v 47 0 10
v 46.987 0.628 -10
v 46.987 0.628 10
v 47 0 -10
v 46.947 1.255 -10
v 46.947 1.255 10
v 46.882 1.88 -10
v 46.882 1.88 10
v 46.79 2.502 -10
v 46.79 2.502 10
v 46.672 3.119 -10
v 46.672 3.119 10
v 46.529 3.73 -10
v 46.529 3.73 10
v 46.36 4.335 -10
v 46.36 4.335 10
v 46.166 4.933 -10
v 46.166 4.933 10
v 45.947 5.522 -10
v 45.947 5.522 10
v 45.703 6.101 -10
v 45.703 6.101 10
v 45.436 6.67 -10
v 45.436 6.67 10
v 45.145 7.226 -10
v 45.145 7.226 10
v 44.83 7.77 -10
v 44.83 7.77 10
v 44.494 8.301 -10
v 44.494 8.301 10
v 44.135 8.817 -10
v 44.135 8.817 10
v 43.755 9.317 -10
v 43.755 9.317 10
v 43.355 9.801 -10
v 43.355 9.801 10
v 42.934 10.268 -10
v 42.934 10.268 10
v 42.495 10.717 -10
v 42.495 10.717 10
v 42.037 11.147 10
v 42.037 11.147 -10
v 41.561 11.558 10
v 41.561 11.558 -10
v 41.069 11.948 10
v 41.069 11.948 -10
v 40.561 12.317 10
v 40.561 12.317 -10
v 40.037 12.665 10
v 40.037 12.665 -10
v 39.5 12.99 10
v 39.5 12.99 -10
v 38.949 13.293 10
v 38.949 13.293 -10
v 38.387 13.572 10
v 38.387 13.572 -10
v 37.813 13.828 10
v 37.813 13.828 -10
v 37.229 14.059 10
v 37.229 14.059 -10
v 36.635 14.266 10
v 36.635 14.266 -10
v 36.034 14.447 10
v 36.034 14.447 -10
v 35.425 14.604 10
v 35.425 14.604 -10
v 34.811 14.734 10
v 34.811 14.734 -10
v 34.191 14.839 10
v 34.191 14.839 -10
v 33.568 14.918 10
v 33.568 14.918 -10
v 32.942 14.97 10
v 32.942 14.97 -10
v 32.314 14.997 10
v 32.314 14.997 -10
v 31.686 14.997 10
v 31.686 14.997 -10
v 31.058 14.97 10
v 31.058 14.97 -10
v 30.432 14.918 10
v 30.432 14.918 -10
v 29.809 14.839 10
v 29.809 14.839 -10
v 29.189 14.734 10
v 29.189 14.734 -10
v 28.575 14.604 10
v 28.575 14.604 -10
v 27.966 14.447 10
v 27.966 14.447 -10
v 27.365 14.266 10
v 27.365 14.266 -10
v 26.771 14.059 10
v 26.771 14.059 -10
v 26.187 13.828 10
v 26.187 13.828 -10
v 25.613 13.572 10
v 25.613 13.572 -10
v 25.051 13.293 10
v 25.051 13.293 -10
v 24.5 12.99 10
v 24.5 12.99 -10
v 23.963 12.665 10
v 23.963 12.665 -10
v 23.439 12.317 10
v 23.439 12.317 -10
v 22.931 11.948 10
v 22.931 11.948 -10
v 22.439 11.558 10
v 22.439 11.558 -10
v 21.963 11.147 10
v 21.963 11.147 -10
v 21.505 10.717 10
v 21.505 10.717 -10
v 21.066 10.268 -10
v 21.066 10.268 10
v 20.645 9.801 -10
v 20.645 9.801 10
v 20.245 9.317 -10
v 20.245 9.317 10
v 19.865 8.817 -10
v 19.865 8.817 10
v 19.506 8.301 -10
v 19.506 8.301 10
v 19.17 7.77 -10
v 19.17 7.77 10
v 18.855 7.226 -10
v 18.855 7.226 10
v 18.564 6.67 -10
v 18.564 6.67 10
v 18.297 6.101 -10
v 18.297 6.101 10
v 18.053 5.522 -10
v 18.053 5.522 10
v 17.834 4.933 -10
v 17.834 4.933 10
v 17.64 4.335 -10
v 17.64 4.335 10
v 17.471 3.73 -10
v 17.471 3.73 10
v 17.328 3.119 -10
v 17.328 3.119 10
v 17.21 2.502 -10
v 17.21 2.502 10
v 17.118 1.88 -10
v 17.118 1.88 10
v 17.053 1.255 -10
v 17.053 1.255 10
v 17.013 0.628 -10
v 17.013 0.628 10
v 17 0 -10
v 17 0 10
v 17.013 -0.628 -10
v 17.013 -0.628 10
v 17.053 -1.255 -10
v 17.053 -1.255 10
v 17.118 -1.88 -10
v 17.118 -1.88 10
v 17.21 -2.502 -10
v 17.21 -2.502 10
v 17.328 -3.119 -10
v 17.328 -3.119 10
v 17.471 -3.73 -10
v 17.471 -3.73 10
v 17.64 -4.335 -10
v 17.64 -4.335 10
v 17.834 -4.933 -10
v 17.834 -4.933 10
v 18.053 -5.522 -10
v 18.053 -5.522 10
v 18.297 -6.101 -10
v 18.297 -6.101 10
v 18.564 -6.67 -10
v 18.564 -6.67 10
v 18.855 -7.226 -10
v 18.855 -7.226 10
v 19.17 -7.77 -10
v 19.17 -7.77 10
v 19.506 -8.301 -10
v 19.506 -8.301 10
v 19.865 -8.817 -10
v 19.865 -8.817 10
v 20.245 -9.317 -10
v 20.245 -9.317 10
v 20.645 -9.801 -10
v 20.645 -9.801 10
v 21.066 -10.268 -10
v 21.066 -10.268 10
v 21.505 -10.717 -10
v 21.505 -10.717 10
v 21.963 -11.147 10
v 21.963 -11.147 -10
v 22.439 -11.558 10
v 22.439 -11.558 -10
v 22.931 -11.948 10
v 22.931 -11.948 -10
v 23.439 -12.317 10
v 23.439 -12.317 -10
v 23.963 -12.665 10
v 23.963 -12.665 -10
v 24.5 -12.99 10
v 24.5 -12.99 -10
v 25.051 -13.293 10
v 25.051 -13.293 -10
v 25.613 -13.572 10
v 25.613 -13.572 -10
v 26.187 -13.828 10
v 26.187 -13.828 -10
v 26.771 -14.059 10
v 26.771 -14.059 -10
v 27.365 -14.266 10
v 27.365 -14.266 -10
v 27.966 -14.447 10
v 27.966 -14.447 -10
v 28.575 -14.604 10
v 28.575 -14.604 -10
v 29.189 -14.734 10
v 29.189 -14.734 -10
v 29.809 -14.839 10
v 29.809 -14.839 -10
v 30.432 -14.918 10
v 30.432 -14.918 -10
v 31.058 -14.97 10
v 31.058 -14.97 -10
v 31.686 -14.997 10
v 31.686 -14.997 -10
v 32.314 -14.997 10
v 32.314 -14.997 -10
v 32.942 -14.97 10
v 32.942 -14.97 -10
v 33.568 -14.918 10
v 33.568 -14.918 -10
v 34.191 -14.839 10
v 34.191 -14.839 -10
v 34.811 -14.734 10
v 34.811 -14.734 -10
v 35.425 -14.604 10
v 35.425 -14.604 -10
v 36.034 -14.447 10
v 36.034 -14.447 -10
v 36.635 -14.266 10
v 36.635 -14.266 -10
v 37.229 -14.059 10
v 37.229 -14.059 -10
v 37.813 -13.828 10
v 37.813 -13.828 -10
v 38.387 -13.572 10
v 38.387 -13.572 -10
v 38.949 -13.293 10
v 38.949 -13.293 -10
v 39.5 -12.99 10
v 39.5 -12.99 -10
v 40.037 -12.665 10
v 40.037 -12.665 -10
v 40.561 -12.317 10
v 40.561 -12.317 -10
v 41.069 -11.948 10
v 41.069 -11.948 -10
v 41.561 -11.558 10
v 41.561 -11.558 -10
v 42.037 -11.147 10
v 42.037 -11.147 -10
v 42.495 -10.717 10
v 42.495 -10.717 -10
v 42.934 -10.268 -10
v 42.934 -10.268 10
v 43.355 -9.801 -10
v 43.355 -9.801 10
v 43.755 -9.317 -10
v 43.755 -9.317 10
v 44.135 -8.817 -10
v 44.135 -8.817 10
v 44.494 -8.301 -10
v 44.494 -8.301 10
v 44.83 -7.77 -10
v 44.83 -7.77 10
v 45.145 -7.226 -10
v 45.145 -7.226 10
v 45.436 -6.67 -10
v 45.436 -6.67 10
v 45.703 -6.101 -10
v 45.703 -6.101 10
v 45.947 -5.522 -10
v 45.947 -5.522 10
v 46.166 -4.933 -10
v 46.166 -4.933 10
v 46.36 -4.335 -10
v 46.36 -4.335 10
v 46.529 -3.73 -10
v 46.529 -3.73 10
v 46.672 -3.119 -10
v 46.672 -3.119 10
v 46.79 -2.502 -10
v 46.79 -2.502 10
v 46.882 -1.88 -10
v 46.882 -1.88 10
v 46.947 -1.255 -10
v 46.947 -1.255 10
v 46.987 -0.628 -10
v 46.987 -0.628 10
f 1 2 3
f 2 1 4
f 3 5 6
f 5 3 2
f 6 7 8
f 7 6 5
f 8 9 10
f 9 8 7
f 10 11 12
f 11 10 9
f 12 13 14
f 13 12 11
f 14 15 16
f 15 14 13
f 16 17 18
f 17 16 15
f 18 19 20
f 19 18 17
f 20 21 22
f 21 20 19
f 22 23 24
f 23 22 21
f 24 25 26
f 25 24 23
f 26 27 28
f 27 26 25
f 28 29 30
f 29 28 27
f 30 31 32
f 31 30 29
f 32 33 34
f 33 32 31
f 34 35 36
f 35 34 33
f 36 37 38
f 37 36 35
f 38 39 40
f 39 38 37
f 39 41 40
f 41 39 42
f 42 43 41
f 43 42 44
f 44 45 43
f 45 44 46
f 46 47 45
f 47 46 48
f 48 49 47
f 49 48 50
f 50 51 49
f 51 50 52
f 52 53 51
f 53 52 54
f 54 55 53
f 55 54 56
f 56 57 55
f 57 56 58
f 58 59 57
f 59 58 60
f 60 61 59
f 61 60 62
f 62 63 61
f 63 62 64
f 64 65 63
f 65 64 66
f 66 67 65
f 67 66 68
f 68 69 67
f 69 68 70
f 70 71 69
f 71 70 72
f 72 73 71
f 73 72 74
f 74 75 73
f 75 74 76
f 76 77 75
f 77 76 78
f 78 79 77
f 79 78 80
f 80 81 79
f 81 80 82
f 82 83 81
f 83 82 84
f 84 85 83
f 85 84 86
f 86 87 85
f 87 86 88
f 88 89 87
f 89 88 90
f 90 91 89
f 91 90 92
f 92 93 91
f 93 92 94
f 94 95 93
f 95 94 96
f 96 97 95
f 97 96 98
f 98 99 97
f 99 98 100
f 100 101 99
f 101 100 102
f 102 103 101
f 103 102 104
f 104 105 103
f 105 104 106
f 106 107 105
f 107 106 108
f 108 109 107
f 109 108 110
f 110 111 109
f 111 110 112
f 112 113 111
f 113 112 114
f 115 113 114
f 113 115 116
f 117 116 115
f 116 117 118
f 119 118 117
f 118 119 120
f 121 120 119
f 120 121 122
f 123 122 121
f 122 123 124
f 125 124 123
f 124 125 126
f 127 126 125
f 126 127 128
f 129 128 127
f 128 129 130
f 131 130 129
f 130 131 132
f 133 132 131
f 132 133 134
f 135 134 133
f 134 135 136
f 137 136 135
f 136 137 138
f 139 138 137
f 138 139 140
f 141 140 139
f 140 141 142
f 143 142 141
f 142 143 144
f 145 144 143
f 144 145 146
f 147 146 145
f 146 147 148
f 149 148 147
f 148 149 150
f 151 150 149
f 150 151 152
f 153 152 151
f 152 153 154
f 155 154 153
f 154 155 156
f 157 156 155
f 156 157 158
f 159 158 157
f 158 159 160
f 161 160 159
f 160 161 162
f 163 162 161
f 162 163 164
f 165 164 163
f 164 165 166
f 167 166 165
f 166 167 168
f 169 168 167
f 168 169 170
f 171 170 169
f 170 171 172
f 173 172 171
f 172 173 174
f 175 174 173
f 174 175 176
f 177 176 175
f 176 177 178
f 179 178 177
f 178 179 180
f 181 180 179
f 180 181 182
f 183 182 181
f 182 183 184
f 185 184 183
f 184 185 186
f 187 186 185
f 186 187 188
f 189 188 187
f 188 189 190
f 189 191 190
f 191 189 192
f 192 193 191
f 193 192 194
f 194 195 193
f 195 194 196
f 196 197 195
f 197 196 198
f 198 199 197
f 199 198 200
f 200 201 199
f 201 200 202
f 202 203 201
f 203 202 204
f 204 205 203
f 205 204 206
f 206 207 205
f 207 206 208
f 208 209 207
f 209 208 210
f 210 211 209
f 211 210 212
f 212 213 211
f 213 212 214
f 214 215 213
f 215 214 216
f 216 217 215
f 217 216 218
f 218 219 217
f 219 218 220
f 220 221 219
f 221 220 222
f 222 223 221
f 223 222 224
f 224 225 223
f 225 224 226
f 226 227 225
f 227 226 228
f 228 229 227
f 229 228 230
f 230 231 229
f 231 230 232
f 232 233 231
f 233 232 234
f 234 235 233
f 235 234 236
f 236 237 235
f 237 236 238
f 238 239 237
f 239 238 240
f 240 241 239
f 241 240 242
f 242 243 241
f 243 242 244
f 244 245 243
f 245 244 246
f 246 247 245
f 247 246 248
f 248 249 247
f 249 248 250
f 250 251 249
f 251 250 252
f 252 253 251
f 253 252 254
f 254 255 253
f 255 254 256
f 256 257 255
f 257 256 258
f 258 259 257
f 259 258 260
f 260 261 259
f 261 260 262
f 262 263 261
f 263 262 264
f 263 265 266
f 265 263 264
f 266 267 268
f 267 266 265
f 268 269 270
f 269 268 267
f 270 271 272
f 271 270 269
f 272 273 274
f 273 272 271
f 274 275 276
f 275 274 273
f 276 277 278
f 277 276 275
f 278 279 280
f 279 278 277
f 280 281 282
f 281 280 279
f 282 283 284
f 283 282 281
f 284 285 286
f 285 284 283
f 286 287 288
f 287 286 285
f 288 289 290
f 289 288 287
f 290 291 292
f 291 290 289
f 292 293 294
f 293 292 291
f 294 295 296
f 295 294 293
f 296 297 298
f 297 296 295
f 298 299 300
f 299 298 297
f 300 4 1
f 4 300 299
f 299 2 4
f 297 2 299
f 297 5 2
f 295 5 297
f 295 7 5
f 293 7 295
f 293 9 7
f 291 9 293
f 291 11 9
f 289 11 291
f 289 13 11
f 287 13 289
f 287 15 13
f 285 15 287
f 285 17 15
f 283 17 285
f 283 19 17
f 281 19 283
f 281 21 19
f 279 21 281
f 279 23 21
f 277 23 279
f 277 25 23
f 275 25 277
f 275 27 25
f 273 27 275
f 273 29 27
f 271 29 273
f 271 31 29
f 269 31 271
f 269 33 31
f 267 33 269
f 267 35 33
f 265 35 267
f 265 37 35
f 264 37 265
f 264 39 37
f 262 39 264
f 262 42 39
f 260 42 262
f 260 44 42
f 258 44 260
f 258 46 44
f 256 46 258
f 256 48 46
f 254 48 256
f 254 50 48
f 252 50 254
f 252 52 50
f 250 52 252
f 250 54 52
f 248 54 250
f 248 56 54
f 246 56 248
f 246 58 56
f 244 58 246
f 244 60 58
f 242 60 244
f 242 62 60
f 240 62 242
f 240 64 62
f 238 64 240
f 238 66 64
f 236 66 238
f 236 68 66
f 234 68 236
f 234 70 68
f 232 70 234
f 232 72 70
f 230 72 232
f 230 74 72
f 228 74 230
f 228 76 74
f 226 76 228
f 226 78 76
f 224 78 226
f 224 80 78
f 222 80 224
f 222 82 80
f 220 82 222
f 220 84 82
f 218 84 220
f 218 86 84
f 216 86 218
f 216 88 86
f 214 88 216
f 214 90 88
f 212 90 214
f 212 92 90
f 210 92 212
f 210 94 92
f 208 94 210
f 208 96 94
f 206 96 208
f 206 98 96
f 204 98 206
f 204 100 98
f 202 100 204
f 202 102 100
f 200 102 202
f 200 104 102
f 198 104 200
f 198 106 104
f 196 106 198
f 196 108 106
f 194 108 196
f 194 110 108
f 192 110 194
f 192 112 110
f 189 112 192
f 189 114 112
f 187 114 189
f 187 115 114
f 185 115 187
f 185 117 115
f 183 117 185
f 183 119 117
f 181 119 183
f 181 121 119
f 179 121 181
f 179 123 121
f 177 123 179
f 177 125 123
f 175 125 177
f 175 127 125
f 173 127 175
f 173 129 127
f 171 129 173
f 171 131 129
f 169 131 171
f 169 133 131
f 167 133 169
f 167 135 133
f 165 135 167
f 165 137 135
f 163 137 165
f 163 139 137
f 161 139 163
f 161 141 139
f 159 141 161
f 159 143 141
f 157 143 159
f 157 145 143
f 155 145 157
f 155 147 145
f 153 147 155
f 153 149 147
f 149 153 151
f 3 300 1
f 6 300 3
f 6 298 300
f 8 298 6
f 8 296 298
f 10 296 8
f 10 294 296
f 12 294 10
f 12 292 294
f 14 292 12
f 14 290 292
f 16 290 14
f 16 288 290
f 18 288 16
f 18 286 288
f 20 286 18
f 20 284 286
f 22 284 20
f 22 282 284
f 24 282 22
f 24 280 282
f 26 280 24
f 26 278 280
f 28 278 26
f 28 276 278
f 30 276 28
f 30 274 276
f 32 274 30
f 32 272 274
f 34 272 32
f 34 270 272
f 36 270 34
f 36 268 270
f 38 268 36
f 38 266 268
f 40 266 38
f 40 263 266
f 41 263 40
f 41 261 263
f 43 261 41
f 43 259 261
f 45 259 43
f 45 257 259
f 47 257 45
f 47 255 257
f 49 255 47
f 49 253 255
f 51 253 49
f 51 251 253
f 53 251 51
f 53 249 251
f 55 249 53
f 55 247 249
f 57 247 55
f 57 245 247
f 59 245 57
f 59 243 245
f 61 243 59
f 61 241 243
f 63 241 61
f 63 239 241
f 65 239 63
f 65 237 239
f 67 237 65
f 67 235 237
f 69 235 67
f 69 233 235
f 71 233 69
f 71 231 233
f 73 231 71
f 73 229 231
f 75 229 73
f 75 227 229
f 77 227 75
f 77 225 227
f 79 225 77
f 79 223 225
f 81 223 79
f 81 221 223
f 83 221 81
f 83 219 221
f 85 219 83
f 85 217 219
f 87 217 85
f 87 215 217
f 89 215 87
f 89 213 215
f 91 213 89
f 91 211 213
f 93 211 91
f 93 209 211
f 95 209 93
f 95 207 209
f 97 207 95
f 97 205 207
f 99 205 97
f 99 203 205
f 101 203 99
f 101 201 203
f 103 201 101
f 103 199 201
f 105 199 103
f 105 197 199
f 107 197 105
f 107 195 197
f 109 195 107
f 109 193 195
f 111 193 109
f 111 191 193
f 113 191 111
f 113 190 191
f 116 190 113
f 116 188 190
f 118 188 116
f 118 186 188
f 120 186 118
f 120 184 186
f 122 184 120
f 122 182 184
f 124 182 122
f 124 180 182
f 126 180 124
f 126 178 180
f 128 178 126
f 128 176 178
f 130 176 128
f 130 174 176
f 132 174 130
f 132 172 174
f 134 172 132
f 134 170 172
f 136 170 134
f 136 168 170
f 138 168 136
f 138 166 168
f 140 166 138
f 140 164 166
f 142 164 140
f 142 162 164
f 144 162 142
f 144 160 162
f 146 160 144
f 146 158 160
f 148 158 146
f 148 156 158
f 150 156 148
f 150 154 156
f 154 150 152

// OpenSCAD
$fn = 150;

translate([32, 0, 0])
rotate([0, 0, 0])
cylinder(20, 15, 15, true);
